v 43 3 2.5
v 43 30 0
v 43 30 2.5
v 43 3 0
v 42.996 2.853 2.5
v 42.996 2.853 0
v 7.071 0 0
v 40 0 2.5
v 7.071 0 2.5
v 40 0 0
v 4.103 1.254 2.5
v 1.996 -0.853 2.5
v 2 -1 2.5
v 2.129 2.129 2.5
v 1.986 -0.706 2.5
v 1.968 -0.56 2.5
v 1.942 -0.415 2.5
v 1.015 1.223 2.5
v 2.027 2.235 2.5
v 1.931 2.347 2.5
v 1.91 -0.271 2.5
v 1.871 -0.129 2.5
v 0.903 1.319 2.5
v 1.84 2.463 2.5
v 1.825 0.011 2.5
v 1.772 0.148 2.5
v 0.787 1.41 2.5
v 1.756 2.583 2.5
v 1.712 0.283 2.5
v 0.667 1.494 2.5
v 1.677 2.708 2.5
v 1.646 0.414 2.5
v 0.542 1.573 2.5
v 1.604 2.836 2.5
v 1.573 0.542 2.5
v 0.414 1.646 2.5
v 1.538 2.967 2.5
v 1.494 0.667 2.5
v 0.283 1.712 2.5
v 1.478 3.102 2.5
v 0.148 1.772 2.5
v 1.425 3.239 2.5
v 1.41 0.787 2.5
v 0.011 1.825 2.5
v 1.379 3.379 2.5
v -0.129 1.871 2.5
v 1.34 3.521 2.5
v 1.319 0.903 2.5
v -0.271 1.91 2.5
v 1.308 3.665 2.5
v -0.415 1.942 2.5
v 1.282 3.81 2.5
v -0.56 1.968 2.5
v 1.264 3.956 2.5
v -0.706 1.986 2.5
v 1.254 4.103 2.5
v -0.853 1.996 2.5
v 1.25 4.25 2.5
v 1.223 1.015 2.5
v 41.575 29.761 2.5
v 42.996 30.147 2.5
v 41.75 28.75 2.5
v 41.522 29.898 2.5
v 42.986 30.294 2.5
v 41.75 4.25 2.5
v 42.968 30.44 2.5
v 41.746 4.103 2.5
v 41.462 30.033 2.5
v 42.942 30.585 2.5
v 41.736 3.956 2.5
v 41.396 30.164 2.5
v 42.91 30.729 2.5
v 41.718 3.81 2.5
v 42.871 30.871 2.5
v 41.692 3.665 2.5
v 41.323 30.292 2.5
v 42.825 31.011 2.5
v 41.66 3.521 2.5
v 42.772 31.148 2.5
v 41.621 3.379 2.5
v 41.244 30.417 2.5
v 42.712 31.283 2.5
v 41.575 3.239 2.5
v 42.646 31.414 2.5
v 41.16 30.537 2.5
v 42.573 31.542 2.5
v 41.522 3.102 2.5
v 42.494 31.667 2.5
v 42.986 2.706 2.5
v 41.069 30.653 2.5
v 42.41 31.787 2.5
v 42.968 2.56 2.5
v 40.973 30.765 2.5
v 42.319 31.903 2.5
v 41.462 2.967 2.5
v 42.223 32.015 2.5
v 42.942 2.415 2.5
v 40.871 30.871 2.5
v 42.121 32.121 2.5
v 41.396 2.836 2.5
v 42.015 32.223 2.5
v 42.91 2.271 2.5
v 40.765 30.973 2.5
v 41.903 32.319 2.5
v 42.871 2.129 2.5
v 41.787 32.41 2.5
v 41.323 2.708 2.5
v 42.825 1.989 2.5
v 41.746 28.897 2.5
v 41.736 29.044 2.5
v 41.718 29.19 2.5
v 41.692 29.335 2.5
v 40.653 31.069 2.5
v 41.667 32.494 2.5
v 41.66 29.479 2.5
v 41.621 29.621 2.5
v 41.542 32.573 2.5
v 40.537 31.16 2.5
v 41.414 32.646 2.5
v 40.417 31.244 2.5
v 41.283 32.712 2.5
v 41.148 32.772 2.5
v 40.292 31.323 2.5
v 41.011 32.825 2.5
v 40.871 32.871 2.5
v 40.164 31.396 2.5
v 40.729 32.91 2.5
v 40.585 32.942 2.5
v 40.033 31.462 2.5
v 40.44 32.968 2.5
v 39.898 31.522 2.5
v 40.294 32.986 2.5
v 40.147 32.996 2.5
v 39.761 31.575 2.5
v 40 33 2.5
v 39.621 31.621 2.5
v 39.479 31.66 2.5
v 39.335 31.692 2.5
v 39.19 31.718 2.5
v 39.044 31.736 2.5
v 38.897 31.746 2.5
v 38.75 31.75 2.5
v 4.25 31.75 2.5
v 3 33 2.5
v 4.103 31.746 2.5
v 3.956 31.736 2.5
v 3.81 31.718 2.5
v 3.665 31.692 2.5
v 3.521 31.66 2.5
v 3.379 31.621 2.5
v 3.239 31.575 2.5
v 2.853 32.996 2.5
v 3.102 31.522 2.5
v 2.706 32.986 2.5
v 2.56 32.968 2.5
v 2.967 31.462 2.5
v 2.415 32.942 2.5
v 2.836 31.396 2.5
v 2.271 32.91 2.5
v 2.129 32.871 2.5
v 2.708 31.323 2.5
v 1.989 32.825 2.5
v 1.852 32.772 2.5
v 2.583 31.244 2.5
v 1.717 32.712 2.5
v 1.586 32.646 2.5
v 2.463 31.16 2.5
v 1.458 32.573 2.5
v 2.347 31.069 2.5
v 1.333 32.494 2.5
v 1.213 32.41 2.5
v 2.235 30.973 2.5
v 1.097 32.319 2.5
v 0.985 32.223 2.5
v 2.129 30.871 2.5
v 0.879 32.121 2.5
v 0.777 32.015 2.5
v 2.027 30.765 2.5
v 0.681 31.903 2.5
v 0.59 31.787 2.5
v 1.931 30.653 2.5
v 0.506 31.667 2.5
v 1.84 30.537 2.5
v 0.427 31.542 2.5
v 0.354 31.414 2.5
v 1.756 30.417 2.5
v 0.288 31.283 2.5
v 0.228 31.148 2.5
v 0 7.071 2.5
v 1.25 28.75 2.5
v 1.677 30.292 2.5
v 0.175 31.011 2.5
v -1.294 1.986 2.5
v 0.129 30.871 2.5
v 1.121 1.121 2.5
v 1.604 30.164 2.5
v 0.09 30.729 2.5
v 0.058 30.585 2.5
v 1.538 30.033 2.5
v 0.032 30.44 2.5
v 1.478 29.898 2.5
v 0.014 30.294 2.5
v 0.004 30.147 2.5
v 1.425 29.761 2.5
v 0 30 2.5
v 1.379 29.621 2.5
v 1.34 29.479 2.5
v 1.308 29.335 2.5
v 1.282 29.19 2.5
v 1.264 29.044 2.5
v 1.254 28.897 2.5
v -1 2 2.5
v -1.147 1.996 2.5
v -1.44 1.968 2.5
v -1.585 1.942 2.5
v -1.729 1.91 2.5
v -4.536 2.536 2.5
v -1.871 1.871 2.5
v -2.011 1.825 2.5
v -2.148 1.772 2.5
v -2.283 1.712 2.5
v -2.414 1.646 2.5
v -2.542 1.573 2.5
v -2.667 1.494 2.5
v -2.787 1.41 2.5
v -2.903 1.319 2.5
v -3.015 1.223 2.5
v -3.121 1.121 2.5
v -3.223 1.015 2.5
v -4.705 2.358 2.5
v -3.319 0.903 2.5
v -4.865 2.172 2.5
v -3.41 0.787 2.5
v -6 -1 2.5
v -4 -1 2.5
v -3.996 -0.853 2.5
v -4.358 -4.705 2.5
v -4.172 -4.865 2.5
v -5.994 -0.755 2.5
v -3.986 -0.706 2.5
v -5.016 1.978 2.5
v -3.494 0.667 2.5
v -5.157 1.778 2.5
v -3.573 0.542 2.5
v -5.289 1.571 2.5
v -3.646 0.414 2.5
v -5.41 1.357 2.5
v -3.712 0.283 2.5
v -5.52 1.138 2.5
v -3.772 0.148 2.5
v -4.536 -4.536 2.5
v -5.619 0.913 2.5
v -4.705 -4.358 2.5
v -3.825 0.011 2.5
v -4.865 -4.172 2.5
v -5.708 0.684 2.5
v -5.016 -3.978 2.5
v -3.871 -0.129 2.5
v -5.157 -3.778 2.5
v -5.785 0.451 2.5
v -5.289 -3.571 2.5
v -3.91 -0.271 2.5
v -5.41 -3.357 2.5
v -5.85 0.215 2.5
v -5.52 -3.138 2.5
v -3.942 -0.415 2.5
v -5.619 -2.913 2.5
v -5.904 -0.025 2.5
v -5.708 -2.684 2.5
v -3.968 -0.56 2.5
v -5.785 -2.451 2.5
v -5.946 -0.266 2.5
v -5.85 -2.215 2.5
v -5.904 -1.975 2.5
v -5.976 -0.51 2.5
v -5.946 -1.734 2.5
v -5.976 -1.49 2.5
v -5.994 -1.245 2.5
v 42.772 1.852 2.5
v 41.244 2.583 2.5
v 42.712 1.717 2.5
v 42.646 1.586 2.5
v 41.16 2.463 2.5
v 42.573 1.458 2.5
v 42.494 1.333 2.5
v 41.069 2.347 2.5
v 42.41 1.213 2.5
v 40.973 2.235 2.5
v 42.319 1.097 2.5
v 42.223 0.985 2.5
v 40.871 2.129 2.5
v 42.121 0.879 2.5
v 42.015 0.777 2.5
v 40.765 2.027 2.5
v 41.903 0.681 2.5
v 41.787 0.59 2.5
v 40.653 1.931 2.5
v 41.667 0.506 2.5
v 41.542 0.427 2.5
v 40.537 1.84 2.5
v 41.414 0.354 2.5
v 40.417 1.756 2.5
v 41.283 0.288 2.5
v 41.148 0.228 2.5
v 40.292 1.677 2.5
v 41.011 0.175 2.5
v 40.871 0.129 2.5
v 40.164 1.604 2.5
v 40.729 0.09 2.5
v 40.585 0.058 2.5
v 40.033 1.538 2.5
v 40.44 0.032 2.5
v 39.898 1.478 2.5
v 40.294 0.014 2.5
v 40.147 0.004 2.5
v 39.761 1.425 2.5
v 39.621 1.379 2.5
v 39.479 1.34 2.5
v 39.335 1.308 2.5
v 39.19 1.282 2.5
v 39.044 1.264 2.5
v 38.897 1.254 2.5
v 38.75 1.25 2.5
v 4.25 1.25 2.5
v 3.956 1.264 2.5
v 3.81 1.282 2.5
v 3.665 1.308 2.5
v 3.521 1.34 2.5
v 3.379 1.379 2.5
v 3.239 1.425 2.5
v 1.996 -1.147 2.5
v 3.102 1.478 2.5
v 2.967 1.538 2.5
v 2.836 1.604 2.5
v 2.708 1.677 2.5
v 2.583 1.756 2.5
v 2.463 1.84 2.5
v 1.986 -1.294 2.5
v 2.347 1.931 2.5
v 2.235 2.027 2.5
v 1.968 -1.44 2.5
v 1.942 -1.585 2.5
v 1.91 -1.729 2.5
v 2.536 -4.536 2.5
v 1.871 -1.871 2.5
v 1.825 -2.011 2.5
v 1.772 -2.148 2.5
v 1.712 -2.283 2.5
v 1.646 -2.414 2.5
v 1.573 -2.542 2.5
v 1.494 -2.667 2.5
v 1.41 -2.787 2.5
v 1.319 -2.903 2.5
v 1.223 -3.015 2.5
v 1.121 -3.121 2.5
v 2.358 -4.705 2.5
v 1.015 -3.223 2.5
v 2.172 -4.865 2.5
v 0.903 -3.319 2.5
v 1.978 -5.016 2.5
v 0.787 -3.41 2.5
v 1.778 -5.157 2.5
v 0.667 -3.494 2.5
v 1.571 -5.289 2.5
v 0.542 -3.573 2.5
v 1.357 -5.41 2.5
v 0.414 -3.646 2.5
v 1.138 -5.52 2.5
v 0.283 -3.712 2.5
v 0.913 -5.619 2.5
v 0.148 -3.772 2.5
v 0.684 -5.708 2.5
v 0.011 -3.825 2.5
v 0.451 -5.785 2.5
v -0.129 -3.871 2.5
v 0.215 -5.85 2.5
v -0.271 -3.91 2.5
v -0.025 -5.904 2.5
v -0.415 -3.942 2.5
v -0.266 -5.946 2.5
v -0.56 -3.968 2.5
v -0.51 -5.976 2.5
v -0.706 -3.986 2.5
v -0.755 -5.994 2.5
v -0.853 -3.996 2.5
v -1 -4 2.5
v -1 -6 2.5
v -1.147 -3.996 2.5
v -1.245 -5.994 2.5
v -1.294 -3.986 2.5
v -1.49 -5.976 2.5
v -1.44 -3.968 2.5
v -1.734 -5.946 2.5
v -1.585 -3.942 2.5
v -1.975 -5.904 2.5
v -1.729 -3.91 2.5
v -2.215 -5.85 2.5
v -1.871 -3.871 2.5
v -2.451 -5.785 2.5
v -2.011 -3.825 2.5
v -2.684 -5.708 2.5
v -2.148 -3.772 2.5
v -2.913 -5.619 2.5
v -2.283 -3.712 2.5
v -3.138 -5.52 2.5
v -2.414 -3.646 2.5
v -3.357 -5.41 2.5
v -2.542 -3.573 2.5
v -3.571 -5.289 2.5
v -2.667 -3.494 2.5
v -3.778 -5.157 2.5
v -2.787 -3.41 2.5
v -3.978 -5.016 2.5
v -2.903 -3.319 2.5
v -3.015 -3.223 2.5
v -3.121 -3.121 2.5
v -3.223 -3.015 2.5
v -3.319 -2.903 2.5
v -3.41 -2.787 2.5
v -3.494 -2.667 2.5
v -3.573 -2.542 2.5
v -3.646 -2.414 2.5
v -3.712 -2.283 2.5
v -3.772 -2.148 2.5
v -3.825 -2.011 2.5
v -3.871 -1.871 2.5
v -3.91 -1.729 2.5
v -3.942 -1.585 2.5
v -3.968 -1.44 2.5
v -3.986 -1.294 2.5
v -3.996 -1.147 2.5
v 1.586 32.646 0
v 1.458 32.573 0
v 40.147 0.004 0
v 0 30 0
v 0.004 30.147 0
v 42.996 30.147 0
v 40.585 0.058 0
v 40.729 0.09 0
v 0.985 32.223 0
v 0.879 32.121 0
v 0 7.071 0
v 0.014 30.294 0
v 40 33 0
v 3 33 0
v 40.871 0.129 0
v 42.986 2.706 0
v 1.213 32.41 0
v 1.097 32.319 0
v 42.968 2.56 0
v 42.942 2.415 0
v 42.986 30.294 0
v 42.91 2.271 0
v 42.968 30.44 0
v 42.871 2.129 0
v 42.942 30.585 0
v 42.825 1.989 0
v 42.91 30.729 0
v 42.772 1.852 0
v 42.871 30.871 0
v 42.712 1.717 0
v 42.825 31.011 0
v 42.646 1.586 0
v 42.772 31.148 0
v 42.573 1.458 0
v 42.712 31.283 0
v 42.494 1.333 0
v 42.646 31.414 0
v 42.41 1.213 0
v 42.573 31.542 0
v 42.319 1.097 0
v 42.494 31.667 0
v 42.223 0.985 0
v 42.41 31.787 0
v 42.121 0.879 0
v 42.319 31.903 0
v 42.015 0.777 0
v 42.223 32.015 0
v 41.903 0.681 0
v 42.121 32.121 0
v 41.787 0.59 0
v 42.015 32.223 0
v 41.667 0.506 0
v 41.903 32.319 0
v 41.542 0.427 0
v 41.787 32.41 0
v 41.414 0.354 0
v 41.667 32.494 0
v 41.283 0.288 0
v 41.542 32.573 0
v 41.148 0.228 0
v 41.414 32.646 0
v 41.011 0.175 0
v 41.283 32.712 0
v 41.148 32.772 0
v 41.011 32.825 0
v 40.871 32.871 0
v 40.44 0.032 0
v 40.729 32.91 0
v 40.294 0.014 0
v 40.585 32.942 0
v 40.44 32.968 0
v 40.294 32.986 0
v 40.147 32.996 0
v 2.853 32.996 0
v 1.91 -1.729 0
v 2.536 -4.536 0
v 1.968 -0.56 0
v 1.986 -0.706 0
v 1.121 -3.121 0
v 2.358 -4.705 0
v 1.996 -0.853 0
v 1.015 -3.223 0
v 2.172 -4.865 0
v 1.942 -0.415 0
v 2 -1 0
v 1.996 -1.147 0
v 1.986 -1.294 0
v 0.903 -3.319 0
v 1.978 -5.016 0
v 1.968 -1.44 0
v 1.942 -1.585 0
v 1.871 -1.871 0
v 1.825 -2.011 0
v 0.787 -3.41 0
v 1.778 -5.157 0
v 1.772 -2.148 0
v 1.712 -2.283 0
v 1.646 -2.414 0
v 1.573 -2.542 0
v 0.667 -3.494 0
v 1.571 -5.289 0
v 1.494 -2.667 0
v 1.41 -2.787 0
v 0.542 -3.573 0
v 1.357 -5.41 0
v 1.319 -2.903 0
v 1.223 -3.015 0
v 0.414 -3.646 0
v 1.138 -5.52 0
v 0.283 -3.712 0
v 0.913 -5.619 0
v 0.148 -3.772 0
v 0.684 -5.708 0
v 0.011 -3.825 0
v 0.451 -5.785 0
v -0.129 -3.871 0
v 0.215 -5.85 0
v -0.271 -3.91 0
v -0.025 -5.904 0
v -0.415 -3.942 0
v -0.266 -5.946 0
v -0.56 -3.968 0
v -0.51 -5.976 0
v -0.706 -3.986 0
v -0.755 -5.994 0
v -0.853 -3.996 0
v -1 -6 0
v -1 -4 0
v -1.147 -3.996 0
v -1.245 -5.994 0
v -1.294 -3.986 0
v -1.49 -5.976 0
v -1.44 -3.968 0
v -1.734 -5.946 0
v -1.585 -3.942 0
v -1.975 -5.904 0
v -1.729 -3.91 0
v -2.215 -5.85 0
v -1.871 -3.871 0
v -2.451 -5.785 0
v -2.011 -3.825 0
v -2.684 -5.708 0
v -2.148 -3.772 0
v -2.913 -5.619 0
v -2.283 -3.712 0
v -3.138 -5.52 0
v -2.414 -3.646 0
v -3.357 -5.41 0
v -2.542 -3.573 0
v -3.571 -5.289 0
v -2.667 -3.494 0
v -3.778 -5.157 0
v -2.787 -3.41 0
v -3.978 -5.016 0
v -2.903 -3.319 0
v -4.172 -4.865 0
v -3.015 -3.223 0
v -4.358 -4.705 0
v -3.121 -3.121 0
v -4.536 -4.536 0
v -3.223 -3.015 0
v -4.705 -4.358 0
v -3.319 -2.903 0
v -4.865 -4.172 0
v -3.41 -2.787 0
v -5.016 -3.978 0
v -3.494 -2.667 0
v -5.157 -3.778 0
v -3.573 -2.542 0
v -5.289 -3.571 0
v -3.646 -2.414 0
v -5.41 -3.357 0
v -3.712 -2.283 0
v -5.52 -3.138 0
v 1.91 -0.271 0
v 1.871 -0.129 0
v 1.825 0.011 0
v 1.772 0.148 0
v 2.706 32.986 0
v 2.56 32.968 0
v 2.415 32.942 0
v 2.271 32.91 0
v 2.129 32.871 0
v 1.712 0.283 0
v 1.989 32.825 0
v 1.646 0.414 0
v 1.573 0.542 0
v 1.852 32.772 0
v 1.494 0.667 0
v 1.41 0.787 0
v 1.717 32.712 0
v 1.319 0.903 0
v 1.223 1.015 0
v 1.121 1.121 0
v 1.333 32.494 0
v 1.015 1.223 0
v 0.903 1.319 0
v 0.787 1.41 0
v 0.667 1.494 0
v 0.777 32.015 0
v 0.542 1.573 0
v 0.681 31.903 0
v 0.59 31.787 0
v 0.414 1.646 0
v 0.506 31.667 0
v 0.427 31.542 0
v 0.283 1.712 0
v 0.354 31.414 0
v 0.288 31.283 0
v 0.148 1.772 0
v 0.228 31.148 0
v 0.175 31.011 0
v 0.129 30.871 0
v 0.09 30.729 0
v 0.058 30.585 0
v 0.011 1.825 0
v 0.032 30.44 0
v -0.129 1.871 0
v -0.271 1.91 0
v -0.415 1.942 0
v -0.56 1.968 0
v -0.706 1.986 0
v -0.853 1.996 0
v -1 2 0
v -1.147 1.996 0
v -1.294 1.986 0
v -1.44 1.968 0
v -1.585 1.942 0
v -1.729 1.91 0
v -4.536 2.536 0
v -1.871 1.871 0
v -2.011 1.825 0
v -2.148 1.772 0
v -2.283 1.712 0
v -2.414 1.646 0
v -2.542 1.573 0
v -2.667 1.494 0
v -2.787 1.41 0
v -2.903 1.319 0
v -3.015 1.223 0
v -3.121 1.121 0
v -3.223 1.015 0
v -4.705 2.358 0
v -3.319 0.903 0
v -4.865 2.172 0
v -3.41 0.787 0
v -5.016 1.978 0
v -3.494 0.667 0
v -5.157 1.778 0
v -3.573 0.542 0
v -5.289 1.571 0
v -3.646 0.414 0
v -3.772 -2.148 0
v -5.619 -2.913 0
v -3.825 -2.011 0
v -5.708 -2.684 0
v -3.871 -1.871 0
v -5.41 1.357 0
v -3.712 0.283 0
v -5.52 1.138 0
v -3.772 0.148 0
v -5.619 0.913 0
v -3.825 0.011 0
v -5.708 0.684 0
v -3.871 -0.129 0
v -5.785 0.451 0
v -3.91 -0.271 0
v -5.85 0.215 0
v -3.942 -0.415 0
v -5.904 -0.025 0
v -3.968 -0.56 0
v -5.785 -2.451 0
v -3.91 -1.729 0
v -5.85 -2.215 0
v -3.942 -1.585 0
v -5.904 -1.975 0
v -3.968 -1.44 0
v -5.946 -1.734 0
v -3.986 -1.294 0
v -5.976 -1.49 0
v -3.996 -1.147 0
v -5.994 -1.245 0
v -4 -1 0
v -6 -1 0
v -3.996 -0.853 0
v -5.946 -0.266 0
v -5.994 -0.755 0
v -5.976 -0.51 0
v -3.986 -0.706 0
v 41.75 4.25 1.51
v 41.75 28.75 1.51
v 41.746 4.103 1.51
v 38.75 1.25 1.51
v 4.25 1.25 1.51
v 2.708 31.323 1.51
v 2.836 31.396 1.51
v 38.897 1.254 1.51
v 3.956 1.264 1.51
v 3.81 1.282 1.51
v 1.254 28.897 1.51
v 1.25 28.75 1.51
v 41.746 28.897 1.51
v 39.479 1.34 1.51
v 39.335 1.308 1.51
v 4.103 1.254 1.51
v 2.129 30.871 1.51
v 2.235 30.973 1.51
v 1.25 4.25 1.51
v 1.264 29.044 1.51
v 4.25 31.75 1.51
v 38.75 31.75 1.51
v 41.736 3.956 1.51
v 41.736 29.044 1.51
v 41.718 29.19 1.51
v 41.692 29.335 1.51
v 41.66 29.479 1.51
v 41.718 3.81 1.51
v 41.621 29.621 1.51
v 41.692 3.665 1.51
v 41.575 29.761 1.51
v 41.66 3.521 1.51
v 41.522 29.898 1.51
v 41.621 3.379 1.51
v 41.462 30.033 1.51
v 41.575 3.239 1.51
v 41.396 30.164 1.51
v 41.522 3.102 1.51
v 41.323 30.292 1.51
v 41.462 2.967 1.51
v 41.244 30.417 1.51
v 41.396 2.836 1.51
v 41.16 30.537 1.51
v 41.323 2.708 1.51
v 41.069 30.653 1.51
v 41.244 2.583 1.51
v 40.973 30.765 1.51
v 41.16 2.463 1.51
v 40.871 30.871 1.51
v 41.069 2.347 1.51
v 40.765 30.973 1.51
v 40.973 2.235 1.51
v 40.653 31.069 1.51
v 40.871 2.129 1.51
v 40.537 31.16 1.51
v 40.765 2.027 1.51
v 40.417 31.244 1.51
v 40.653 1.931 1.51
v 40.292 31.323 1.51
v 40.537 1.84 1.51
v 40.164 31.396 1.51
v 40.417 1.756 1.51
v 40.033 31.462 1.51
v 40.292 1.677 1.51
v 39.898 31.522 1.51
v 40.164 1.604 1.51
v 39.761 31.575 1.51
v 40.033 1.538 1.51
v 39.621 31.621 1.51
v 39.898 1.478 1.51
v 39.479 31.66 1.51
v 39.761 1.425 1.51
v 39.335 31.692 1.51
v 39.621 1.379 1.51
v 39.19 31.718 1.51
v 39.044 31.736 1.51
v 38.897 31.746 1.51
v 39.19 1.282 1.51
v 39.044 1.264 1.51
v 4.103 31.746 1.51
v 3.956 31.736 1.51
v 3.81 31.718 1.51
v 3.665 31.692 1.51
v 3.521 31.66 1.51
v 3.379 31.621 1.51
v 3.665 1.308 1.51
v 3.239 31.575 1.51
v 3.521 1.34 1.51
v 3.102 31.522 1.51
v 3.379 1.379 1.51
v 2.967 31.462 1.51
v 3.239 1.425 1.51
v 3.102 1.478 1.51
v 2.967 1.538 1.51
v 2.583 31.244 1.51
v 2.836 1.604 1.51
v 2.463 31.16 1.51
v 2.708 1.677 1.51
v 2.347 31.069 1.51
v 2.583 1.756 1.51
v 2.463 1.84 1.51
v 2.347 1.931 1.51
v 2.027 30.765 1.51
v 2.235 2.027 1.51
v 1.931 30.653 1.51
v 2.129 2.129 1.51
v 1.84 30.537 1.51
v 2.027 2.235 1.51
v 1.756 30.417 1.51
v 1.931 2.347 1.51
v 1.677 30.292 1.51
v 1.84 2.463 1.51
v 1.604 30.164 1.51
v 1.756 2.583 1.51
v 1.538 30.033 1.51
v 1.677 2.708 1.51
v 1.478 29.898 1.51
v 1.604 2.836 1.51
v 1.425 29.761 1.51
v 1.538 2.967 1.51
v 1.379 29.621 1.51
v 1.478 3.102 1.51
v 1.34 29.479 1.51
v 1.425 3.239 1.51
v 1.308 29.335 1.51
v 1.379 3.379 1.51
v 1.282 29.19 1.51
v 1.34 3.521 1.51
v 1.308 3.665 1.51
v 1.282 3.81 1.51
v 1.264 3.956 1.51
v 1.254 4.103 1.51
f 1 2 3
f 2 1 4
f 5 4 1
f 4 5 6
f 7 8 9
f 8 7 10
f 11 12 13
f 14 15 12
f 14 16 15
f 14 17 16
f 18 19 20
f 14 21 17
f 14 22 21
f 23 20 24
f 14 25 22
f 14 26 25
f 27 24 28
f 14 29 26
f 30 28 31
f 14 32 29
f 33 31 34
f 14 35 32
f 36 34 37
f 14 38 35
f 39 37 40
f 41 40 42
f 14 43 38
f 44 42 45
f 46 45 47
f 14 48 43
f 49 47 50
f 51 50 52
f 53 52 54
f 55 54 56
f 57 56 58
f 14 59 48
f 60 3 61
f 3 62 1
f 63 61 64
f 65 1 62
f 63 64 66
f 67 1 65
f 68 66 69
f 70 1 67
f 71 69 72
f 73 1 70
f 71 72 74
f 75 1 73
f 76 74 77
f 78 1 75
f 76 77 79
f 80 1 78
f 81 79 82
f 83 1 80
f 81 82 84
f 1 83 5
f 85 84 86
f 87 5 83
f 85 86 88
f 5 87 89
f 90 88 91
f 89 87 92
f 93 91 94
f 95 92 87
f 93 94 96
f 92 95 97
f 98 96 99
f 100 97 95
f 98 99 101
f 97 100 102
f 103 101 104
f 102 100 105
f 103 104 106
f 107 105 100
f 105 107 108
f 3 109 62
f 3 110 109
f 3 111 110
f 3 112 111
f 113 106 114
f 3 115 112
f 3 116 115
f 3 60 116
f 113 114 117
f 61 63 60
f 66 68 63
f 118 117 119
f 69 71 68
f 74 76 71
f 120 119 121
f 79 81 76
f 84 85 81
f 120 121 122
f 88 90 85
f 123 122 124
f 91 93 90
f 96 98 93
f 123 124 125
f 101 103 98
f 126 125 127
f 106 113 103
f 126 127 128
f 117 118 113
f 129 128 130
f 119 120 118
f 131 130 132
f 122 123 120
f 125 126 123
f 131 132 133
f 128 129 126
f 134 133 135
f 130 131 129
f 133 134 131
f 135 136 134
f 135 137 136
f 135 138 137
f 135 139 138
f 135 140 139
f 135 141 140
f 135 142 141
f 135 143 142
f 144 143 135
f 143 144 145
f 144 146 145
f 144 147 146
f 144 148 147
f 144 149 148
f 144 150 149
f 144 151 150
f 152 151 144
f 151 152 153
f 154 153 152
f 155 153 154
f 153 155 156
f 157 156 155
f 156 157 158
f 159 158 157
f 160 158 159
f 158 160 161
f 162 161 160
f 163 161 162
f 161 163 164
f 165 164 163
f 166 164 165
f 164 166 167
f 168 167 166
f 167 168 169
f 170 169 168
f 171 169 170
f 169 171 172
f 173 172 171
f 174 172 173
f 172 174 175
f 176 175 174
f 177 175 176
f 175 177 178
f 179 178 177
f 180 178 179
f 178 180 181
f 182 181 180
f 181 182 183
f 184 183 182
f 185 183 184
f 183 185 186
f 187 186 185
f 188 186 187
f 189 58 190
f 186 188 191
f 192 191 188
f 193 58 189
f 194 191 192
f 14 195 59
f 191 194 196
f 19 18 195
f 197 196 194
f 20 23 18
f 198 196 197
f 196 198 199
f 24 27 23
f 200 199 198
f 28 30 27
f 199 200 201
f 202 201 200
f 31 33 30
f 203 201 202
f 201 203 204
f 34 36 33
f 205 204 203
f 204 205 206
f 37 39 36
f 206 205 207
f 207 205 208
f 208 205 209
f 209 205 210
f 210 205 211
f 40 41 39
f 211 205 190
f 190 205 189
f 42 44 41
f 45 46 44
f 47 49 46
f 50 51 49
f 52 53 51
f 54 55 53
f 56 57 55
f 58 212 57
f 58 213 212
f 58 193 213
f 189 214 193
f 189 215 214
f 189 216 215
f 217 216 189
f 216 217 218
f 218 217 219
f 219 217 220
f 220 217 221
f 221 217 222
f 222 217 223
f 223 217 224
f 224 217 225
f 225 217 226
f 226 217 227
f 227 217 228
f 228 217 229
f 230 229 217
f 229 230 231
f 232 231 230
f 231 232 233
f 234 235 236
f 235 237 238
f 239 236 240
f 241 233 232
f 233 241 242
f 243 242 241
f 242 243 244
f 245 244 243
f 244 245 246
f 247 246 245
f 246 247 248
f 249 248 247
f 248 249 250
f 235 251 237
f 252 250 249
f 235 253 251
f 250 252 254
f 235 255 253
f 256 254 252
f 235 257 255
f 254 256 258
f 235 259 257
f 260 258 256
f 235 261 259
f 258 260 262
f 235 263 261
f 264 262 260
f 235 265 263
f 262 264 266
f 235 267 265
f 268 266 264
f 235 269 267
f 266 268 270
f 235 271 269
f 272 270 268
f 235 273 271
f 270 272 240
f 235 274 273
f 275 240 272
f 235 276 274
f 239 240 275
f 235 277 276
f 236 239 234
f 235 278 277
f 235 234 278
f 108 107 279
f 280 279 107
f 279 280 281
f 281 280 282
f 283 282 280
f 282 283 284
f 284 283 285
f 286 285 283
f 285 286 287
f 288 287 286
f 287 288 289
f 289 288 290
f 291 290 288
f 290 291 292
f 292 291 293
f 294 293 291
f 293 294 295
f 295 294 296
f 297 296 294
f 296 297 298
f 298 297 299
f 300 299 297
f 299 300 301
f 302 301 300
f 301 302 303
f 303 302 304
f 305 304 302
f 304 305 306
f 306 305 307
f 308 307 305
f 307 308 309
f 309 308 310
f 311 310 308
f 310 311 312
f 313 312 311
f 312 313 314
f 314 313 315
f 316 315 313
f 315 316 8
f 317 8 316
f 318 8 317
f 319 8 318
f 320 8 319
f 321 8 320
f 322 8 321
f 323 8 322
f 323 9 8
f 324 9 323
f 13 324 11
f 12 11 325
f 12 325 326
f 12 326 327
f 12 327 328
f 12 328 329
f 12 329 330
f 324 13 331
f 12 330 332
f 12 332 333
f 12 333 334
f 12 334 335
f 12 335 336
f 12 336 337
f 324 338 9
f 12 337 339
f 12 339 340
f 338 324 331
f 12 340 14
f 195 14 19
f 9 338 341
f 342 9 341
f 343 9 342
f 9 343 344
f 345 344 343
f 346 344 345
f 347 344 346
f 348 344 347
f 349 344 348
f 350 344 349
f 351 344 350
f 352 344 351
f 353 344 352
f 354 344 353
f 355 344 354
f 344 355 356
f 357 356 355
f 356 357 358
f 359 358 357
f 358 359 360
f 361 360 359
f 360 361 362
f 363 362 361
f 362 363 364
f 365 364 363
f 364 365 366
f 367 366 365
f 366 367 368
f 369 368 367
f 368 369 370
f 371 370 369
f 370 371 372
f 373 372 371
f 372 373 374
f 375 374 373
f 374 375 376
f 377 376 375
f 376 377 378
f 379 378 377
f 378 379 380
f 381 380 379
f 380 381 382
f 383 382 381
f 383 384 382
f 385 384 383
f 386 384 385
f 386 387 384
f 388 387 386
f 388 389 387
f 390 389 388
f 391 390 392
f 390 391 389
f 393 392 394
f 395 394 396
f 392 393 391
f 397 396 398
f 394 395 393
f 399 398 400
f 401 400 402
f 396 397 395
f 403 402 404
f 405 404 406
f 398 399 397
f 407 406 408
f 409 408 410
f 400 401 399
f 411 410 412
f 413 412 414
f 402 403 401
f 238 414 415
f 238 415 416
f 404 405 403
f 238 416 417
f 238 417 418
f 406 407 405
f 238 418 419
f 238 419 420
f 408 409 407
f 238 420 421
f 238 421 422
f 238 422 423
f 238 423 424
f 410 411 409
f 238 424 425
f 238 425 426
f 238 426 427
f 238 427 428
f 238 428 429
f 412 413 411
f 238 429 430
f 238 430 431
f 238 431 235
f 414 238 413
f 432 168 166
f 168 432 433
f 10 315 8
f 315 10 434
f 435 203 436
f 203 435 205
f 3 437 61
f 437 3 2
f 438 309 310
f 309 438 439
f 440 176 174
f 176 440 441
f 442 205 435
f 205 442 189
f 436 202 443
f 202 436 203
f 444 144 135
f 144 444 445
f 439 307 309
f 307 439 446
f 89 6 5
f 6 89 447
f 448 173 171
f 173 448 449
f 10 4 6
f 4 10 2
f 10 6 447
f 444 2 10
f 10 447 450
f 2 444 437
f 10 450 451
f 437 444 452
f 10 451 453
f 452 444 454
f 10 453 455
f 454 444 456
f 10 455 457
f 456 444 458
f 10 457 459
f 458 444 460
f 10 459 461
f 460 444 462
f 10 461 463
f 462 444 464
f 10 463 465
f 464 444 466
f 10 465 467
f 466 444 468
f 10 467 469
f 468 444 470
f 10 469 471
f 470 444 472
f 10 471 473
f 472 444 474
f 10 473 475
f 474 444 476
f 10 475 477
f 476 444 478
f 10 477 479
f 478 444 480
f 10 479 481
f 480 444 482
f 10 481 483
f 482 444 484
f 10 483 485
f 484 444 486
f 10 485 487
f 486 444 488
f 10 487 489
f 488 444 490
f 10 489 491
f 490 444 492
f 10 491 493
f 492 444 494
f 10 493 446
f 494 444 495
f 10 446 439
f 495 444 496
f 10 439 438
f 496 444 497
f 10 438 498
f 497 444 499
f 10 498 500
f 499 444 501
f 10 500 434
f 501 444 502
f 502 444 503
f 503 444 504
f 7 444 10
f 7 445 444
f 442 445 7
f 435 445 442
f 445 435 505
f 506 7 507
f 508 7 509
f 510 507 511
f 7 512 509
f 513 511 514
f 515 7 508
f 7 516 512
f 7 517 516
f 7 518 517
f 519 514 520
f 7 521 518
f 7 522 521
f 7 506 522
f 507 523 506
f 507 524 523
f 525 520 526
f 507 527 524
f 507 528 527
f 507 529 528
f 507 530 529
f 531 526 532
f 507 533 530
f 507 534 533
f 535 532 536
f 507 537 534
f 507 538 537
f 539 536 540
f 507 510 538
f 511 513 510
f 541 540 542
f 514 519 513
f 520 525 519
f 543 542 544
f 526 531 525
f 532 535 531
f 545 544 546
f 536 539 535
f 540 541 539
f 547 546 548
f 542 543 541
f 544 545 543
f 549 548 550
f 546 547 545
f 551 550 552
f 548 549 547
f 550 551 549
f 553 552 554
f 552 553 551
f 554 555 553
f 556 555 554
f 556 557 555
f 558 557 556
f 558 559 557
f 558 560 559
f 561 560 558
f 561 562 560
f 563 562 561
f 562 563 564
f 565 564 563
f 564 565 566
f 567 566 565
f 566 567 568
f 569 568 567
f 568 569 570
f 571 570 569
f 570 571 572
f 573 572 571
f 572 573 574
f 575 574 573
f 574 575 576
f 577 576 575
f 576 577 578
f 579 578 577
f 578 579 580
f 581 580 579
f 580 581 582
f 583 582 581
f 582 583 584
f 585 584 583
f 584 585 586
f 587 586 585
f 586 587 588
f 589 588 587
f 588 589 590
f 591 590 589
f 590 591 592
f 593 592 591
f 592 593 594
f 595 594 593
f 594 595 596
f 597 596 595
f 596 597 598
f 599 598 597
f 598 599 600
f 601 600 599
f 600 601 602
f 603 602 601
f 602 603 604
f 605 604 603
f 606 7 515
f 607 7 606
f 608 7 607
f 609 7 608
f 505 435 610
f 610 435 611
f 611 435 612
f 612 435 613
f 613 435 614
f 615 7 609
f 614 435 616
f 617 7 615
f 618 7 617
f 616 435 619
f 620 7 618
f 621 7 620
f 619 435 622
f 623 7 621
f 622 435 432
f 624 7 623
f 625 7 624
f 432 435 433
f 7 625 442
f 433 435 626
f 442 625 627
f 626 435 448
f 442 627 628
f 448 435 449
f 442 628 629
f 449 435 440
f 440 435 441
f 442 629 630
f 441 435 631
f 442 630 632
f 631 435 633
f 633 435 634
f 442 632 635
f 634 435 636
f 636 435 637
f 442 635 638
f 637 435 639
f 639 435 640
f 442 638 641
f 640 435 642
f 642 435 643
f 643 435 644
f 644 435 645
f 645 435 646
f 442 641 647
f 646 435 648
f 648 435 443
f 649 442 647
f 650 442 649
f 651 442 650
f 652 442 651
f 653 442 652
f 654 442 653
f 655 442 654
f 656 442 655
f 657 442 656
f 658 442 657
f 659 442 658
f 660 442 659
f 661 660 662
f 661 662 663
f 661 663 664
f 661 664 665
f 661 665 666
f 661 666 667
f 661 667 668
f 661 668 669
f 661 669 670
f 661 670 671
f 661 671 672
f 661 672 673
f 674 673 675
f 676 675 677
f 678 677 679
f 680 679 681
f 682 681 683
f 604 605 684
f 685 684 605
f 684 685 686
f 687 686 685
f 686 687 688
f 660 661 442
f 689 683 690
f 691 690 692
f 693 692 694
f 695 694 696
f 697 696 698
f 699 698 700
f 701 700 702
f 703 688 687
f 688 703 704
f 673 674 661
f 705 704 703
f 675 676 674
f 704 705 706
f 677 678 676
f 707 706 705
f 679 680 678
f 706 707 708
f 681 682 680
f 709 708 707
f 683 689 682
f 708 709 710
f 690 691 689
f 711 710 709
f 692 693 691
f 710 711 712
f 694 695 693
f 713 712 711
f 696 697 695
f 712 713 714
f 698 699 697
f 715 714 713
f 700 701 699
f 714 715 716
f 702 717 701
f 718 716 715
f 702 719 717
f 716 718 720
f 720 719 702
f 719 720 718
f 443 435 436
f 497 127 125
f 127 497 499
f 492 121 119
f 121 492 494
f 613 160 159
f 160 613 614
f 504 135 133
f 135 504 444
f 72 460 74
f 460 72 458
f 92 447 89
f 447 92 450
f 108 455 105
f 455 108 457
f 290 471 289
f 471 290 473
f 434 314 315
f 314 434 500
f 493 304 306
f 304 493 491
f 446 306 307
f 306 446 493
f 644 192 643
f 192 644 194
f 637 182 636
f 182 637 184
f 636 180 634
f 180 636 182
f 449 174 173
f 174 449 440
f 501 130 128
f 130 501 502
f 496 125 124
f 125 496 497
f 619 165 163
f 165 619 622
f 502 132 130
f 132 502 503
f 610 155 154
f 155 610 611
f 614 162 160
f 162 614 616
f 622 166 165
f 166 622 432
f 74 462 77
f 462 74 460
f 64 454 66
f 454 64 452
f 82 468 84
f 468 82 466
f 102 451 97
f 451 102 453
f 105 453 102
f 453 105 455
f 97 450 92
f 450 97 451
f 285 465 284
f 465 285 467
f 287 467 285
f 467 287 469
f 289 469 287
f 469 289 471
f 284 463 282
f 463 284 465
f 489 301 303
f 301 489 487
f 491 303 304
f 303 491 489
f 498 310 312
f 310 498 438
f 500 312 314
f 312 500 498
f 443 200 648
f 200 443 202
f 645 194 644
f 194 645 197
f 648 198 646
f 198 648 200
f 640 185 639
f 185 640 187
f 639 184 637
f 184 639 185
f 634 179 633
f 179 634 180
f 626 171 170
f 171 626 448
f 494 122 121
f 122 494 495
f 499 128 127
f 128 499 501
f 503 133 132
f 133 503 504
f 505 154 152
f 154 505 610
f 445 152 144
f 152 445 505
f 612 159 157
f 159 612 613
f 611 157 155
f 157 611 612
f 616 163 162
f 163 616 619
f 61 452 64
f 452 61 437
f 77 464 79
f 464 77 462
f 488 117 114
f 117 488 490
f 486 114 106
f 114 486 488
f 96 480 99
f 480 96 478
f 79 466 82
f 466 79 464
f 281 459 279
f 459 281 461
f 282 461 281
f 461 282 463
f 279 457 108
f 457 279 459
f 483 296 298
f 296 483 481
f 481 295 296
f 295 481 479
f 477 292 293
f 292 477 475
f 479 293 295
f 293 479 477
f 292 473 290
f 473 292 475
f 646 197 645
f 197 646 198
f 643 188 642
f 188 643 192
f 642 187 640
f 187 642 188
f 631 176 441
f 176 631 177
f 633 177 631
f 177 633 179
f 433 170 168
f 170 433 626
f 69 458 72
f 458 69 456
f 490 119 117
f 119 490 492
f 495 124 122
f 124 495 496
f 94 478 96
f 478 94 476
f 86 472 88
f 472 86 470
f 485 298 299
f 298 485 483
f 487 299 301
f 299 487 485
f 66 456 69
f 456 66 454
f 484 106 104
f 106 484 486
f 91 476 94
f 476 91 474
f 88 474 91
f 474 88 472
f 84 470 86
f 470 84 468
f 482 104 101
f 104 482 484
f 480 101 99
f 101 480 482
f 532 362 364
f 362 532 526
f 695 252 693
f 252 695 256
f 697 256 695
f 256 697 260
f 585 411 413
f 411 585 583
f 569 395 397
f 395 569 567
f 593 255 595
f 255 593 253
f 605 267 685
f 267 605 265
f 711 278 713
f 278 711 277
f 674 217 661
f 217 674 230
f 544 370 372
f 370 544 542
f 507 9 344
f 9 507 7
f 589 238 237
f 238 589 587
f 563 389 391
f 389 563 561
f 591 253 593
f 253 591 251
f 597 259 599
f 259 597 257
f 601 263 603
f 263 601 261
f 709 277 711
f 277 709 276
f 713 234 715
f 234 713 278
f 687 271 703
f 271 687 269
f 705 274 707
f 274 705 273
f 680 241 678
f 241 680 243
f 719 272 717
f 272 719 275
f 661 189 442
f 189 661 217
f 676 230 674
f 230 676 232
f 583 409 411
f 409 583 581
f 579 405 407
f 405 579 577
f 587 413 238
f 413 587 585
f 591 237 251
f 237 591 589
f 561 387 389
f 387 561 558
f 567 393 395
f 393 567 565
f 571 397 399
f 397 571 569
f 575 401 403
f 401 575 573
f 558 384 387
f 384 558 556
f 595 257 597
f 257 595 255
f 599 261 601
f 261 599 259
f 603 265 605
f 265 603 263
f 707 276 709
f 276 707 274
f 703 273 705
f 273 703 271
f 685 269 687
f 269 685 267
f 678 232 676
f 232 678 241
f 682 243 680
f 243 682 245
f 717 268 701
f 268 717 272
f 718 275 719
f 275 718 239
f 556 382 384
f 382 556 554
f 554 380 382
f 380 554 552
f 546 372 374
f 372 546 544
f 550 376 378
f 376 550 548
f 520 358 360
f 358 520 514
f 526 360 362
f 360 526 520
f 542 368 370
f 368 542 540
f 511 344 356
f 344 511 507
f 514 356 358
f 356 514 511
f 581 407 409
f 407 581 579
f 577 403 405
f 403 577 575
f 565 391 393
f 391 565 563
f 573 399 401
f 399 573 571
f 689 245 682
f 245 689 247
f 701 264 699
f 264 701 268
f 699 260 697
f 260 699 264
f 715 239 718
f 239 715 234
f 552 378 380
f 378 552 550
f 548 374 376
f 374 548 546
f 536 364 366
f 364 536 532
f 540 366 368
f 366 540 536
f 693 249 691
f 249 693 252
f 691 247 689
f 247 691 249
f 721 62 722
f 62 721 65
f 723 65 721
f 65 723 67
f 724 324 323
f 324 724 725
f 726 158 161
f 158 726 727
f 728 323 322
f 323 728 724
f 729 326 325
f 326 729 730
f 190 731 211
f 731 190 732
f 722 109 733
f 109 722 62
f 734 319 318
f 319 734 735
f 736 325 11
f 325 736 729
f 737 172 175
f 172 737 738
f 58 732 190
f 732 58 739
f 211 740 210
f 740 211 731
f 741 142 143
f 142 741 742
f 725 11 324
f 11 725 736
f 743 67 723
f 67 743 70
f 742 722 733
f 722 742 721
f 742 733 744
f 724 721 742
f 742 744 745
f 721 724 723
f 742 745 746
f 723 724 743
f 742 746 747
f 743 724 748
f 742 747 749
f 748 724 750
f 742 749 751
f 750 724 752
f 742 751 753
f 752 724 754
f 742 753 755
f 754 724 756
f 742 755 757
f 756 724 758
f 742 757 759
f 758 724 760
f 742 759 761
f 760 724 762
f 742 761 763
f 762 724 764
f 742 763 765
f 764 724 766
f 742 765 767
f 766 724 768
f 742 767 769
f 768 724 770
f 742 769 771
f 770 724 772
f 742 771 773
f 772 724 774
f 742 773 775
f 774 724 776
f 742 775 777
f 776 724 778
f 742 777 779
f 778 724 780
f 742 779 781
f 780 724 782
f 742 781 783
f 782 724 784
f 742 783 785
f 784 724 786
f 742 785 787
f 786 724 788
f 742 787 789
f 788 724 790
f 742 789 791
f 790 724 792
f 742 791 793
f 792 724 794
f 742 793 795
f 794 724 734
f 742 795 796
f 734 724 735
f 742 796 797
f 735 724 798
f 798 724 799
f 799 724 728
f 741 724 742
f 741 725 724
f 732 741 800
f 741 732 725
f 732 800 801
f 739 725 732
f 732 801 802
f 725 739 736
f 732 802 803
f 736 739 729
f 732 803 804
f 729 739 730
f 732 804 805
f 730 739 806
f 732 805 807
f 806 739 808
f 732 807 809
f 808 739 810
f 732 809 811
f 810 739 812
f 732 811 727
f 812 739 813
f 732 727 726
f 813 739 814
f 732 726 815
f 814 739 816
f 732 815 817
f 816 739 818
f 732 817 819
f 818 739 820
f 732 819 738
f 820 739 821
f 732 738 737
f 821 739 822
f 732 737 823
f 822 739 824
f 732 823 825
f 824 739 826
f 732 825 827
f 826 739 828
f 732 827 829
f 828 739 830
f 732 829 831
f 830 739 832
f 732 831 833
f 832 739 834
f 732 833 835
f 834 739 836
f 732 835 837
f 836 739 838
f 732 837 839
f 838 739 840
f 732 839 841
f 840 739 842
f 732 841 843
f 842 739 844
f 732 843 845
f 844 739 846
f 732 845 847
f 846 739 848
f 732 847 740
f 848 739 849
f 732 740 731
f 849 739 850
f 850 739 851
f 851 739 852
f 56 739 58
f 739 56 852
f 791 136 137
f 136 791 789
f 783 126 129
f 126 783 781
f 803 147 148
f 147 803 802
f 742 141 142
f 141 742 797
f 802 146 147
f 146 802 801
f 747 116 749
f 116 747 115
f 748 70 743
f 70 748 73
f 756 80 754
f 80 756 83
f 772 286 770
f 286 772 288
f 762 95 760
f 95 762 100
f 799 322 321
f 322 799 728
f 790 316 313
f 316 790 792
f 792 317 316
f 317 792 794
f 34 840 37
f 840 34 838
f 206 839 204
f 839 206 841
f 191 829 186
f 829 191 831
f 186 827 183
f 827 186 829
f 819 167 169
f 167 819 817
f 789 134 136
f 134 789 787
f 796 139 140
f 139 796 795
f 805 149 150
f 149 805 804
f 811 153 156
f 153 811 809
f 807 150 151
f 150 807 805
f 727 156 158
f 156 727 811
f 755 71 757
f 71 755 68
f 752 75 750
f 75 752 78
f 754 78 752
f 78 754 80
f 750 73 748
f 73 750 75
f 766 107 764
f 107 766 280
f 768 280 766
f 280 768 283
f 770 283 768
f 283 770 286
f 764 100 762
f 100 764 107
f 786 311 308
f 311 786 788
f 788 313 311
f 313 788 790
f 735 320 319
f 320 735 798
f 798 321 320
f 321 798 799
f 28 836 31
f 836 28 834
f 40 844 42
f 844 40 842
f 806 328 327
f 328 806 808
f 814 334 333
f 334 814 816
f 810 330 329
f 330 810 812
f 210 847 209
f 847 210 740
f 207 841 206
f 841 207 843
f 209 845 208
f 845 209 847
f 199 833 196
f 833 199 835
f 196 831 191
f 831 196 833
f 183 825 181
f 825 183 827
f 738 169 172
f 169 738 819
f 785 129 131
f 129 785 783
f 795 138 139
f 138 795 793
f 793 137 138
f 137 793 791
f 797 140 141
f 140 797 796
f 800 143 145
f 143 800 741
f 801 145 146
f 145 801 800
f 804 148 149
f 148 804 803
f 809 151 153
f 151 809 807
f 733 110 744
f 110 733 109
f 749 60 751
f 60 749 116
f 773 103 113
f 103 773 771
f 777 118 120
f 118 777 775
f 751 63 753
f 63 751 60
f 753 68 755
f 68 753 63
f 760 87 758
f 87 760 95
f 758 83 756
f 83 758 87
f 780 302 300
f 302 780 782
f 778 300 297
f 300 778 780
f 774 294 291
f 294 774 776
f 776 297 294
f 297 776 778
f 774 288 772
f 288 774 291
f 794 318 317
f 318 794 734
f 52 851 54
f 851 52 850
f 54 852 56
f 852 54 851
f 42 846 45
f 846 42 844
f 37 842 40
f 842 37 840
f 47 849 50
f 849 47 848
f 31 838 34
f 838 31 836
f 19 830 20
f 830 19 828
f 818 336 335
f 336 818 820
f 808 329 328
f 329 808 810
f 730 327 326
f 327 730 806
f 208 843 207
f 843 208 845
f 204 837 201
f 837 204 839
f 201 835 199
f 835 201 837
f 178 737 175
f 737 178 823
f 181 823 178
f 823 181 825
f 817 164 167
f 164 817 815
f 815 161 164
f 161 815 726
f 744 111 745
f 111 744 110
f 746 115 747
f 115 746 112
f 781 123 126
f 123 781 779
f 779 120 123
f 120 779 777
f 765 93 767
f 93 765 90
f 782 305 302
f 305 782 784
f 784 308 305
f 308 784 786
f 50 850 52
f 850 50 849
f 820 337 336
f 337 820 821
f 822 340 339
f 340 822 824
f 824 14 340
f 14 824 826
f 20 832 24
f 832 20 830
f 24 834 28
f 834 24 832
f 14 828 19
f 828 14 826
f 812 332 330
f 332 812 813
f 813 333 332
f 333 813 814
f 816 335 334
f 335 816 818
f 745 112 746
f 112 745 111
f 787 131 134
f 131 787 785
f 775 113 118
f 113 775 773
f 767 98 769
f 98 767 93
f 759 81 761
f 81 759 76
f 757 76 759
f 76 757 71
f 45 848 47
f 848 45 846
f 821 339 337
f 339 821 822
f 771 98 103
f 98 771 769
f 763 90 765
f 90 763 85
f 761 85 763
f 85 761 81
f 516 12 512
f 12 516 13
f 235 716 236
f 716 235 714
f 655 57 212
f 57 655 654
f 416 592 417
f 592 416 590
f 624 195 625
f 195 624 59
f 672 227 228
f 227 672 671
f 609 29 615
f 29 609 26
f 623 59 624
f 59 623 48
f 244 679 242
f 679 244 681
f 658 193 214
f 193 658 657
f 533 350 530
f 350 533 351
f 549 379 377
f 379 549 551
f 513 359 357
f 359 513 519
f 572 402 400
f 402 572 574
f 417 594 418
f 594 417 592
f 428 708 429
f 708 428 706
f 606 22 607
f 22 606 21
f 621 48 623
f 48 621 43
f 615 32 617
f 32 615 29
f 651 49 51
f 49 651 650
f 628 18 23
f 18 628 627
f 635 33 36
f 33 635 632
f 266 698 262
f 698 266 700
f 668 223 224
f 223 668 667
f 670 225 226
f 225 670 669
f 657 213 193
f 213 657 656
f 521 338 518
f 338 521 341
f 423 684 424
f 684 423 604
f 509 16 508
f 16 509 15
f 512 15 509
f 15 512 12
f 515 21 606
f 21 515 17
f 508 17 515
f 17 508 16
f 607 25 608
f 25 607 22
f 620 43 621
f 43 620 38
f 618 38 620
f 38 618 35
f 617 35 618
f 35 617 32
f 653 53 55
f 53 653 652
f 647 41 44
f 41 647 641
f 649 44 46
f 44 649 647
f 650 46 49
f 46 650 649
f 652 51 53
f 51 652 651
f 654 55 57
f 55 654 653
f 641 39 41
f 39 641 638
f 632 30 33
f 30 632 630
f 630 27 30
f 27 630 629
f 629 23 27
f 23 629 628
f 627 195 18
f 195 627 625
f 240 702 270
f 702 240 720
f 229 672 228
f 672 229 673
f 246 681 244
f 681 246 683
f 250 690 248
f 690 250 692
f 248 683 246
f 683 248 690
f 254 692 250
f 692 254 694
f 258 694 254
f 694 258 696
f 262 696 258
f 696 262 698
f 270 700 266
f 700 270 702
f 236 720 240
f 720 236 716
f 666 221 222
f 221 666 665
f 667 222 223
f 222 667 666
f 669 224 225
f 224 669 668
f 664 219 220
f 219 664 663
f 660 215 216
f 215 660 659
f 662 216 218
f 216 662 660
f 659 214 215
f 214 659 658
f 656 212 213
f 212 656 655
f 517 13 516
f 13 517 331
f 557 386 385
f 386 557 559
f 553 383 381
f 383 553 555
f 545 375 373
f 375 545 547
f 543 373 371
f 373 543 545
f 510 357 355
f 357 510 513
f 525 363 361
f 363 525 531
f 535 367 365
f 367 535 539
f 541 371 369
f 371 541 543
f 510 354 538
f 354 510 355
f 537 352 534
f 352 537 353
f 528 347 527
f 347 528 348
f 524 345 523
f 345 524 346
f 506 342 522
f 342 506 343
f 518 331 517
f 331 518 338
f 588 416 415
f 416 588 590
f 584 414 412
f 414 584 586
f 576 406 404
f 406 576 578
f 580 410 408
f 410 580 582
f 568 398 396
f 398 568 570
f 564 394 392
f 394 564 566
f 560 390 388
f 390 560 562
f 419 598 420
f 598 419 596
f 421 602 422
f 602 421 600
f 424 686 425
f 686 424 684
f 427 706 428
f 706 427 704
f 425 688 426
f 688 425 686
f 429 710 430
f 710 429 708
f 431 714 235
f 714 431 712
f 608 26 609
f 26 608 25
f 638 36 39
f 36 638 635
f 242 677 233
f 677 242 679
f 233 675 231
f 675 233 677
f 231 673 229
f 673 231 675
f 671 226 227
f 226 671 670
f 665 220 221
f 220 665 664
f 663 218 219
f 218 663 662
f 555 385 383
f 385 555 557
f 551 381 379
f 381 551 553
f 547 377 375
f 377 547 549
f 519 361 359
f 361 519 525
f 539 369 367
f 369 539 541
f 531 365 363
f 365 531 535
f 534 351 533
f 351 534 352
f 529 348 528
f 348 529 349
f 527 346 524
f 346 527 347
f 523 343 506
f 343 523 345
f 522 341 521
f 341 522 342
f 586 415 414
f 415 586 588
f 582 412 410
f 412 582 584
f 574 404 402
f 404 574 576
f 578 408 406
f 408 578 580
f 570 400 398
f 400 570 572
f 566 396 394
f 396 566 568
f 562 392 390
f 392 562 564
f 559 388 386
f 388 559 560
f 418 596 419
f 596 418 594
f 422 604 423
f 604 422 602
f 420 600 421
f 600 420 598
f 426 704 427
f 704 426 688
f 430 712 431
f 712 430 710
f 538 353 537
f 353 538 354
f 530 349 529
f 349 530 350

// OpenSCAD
/*
 * Keychain for contactless payment stickers (40 x 30 x 0.8 mm)
 * Vlastimil Holer, <vlastimil.holer@gmail.com>
 */

// rounded cube
module rcube(x, y, z, r) {
	d = 2*r;
	translate([r, r, 0]) resize([x, y, z]) minkowski() {
		cube([x-d, y-d, z/2]);
		cylinder(r=r, h=z/2, $fn=128);
	}
}

// keychain parameters:
//   x, y, z    ... keychain size
//   xi, yi, zi ... card inner size
//   lr, lri    ... loop outer and inner radius
//   er         ... rounded edge radius
module keychain(x=43, y=33, z=2.5, xi=40.5, yi=30.5, zi=1, lr=5, lri=3, er=3) {
	difference() {
		union() {
			resize([x,y,z]) translate([0,0,0]) rcube(x, y, z, r=er);
			hull() {
				translate([-1,-1,0]) cylinder(r=lr, h=z, $fn=128);
				translate([lr,lr,0]) cylinder(r=lr, h=z, $fn=128);
			}
		}

		translate([(x-xi)/2, (y-yi)/2, z-zi+0.01]) rcube(xi, yi, zi+0.01, r=er);	
		translate([-1,-1,0]) cylinder(r=lri, h=z+1, $fn=128);
	}
}

keychain();
